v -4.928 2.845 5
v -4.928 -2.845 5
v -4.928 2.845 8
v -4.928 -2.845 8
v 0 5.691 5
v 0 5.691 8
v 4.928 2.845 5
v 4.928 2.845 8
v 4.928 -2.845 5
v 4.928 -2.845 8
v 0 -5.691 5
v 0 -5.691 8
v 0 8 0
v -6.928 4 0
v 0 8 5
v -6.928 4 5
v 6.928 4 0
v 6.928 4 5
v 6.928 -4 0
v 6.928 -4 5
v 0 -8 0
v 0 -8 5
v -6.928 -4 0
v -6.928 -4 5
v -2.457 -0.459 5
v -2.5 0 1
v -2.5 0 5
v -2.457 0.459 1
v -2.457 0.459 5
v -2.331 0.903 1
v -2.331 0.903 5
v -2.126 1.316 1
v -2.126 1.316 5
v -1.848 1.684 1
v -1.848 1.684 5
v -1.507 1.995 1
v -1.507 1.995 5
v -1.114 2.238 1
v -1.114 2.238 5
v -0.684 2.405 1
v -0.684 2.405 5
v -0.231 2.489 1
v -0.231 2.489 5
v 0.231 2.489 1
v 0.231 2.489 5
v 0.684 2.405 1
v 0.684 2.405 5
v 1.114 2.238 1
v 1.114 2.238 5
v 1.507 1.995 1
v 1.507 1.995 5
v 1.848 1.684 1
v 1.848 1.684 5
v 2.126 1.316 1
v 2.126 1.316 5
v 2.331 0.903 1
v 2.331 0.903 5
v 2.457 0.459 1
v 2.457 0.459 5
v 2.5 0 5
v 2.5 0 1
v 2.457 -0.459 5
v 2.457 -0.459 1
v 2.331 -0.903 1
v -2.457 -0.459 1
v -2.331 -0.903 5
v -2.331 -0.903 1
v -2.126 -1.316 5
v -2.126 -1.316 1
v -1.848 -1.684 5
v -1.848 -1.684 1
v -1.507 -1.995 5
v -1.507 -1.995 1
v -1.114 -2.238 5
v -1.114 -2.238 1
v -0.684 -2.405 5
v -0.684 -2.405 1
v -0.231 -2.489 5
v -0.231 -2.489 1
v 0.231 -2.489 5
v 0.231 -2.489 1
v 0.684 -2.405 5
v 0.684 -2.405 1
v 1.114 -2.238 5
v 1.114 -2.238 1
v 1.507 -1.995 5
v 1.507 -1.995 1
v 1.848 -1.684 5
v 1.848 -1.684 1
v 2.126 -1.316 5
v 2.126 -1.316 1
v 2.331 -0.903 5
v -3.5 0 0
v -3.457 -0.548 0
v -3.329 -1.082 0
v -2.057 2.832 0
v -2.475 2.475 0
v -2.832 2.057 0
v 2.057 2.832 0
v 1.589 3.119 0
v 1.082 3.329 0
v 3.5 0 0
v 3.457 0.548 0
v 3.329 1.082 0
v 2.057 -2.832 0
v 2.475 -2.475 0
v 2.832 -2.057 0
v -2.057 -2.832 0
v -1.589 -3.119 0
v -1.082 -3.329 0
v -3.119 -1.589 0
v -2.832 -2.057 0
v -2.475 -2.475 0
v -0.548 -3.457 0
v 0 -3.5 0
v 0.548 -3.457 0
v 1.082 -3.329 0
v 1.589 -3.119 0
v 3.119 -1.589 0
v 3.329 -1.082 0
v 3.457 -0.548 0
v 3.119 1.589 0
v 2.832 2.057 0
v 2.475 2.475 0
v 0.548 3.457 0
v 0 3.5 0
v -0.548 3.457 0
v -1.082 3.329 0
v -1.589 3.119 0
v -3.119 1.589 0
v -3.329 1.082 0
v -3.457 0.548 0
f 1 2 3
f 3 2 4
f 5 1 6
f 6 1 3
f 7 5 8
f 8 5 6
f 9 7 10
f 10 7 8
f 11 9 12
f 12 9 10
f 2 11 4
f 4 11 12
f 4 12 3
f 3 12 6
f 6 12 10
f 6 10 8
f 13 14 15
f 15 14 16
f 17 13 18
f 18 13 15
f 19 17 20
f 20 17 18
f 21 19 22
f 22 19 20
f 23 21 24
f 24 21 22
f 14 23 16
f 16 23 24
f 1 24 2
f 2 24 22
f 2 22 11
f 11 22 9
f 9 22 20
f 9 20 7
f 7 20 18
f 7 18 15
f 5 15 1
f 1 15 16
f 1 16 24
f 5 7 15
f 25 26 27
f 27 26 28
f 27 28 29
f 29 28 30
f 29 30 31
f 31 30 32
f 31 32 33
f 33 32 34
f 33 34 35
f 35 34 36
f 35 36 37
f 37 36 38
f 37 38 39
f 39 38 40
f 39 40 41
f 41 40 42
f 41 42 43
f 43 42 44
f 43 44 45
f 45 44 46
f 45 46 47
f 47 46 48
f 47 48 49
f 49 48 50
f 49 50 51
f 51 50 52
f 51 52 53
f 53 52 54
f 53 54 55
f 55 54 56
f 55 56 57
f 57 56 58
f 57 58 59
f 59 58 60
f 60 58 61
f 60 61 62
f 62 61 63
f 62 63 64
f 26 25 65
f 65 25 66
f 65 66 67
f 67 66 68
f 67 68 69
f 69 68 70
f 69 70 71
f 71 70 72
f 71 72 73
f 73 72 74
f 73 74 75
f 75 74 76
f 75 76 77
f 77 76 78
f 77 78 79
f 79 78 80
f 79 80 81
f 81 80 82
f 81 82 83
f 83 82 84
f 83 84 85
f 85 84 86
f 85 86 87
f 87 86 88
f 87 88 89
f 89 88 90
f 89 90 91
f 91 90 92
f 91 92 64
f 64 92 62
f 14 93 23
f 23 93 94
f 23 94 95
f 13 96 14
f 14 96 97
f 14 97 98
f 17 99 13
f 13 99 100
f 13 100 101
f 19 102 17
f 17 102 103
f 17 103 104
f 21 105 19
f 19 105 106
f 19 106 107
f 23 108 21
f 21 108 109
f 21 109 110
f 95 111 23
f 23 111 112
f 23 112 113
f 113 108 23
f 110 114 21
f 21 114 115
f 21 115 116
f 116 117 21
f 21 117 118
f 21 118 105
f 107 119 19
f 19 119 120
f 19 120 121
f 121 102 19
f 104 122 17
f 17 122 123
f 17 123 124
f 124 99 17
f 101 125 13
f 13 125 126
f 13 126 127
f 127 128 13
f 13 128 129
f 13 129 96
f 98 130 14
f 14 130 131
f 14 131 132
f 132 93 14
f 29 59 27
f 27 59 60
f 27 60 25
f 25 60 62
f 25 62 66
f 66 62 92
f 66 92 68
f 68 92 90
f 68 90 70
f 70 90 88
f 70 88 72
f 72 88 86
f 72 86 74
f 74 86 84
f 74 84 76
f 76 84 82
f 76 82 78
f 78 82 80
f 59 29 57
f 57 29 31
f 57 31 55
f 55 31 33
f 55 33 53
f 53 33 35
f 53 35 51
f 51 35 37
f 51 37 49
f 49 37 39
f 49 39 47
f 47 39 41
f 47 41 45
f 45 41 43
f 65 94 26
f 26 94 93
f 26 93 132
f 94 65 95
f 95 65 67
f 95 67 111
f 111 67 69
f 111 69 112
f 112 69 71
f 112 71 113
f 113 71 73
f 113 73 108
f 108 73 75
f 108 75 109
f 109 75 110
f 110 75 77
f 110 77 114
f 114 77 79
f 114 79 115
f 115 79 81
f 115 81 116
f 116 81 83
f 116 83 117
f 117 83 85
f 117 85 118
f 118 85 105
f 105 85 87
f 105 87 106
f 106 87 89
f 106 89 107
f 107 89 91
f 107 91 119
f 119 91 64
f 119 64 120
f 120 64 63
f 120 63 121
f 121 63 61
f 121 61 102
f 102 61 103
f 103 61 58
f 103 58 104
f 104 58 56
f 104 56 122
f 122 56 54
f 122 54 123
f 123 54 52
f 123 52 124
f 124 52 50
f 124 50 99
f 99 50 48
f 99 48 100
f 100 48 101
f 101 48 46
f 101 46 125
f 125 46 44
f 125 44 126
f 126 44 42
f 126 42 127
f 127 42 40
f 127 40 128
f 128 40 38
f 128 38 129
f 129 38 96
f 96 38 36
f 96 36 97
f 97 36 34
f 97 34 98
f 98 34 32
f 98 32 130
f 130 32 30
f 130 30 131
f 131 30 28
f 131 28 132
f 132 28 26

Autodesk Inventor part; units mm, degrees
ref_plane "YZ Plane" through (0, 0, 0) normal (1, 0, 0) x (0, 1, 0)
ref_plane "XZ Plane" through (0, 0, 0) normal (0, 1, 0) x (-1, 0, 0)
ref_plane "XY Plane" through (0, 0, 0) normal (0, 0, 1) x (1, 0, 0)
sketch "Sketch1" plane through (0, 0, 0) normal (0, 0, 1) x (1, 0, 0)
  line L0 (0, 8) -> (6.9282, 4)
  line L1 (6.9282, 4) -> (6.9282, -4)
  line L2 (6.9282, -4) -> (0, -8)
  line L3 (0, -8) -> (-6.9282, -4)
  line L4 (-6.9282, -4) -> (-6.9282, 4)
  line L5 (-6.9282, 4) -> (0, 8)
  point P0 (0, 0)
  point P1 (0, 0)
  dimension "d0" = 8
extrude "Extrusion1" add sketch "Sketch1" along normal blind 5
sketch "Sketch2" plane through (0, 0, 5) normal (0, 0, 1) x (1, 0, 0)
  line L0 (-6.9282, 4) -> (-6.9282, -4) projected
  line L1 (-6.9282, -4) -> (0, -8) projected
  line L2 (0, -8) -> (6.9282, -4) projected
  line L3 (6.9282, -4) -> (6.9282, 4) projected
  line L4 (6.9282, 4) -> (0, 8) projected
  line L5 (0, 8) -> (-6.9282, 4) projected
  line L6 (-4.9282, 2.8453) -> (-4.9282, -2.8453)
  line L7 (-4.9282, -2.8453) -> (0, -5.6906)
  line L8 (0, -5.6906) -> (4.9282, -2.8453)
  line L9 (4.9282, -2.8453) -> (4.9282, 2.8453)
  line L10 (4.9282, 2.8453) -> (0, 5.6906)
  line L11 (0, 5.6906) -> (-4.9282, 2.8453)
  point P0 (0, 0)
  dimension "d3" = 2
extrude "Extrusion2" add sketch "Sketch2" along normal blind 3 contours L11 L10 L9 L8 L7 L6
sketch "Sketch3" plane through (0, 0, 0) normal (0, 0, -1) x (-1, 0, 0)
  circle A0 centre (0, 0) radius 2.5
  dimension "d6" = 5
extrude "Extrusion3" cut sketch "Sketch3" against normal blind 5
chamfer "Chamfer1" distance 1 angle 45 1 edges at (2.5, 0, 0)
properties part number "white_part1"
